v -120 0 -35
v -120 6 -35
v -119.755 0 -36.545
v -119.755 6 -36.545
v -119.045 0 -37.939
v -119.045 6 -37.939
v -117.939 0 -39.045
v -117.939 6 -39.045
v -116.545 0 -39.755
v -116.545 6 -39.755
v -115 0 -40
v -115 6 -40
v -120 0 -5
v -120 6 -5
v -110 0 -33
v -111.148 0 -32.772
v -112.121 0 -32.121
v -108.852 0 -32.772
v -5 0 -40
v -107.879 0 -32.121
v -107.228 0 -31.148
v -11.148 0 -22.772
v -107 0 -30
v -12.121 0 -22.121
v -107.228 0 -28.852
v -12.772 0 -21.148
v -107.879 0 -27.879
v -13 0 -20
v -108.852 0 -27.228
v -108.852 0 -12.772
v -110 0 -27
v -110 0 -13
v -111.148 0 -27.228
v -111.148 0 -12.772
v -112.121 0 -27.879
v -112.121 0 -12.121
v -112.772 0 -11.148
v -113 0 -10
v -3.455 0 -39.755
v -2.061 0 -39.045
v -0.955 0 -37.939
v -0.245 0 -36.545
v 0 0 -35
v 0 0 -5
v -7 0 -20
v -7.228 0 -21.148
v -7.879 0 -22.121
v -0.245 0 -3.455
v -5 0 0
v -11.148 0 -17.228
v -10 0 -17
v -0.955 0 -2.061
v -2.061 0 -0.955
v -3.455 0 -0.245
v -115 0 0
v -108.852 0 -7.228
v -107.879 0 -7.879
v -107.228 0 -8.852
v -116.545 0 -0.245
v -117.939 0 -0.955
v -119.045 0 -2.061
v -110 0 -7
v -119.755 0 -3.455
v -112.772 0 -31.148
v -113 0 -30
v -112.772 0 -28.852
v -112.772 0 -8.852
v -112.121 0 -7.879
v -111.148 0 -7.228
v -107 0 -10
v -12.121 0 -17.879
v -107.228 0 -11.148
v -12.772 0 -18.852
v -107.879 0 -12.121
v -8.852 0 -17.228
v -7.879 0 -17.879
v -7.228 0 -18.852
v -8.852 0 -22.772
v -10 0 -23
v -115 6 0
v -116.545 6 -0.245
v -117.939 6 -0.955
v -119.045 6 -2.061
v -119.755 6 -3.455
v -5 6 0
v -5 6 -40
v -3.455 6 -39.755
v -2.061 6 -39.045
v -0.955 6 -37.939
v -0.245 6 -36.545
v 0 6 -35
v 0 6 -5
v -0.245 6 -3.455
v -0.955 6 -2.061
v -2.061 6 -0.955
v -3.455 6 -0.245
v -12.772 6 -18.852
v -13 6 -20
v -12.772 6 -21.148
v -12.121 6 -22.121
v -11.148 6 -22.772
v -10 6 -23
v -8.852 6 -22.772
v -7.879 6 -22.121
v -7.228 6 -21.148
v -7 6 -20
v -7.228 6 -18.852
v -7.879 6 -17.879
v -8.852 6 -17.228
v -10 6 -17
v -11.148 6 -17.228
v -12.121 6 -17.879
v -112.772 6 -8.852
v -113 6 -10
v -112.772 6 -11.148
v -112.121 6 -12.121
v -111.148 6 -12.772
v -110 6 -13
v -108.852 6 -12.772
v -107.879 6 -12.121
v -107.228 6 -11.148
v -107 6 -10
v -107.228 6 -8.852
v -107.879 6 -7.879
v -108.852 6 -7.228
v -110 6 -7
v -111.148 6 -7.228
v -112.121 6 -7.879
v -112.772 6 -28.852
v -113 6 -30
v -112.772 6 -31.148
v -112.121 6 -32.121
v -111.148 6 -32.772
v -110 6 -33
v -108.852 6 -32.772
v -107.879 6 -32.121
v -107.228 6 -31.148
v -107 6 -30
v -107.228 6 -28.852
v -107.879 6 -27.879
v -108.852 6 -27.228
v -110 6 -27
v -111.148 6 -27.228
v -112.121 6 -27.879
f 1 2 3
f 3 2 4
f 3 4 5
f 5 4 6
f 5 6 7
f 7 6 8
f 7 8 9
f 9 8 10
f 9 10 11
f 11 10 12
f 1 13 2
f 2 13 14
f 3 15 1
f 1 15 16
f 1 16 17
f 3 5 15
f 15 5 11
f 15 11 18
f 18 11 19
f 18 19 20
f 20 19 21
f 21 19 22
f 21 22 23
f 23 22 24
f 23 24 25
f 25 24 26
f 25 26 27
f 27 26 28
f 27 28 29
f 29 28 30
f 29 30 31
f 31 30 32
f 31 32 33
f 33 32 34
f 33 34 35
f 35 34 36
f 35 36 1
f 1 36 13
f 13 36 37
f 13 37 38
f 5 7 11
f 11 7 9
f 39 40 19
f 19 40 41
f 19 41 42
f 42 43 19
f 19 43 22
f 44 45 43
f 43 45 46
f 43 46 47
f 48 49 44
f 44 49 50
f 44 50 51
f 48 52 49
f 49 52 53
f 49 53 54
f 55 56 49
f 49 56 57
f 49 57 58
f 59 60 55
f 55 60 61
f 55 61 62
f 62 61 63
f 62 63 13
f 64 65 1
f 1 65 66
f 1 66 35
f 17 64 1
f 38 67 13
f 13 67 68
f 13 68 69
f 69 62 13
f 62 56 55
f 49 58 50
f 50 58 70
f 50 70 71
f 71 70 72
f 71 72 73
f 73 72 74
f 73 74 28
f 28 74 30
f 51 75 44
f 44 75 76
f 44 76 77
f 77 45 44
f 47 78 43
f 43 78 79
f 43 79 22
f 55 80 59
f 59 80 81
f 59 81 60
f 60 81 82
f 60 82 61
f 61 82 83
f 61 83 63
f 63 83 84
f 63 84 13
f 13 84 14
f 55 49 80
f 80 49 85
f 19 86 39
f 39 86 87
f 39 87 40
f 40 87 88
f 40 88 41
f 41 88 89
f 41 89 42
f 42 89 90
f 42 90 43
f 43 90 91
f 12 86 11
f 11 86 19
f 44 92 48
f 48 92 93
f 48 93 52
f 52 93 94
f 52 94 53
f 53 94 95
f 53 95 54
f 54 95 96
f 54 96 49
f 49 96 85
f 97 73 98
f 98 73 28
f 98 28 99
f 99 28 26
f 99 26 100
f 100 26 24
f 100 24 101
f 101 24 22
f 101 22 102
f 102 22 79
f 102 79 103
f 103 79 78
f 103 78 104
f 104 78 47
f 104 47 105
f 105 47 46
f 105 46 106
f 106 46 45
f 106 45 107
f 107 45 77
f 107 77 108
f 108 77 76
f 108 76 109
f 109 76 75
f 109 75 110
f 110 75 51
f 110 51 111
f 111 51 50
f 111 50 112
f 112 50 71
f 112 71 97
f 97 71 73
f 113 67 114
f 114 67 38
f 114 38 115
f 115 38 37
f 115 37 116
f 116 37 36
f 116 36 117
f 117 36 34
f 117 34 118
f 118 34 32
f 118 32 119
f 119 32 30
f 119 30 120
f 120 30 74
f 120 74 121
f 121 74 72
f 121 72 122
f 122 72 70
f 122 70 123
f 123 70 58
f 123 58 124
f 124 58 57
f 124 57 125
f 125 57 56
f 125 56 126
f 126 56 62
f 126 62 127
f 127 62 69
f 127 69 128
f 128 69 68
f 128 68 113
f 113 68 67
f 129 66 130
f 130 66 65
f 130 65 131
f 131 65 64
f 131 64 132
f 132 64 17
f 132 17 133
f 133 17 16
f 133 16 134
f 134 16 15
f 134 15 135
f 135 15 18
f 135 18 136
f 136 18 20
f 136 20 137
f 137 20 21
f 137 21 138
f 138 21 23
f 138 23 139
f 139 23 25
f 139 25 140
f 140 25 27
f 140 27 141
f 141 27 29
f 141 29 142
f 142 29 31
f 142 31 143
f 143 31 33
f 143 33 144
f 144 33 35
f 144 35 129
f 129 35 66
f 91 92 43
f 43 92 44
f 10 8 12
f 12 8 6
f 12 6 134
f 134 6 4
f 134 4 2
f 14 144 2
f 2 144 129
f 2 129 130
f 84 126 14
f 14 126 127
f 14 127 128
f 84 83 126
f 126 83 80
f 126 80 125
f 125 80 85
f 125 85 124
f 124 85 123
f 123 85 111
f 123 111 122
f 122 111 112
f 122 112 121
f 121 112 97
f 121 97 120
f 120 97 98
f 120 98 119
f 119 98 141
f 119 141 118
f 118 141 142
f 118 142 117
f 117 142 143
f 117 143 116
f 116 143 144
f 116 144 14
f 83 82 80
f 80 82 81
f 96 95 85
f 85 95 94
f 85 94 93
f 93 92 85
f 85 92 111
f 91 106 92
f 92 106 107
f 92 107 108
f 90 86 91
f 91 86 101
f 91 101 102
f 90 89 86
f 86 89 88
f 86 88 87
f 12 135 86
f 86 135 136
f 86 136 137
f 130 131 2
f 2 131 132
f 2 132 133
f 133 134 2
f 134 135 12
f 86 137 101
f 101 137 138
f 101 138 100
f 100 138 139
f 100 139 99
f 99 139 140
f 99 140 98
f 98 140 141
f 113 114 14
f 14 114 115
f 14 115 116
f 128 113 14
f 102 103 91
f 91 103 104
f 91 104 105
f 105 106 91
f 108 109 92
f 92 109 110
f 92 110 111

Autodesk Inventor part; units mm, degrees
ref_plane "YZ Plane" through (0, 0, 0) normal (1, 0, 0) x (0, 1, 0)
ref_plane "XZ Plane" through (0, 0, 0) normal (0, 1, 0) x (-1, 0, 0)
ref_plane "XY Plane" through (0, 0, 0) normal (0, 0, 1) x (1, 0, 0)
sketch "Sketch1" plane through (0, 0, 0) normal (0, 1, 0) x (-1, 0, 0)
  line L0 (0, 0) -> (120, 0)
  line L1 (120, 0) -> (120, -40)
  line L2 (120, -40) -> (0, -40)
  line L3 (0, -40) -> (0, 0)
  circle A0 centre (10, -20) radius 3
  circle A1 centre (110, -10) radius 3
  circle A2 centre (110, -30) radius 3
  dimension "d0" = 120
  dimension "d1" = 40
  dimension "d2" = 6
  dimension "d3" = 10
  dimension "d4" = 20
  dimension "d5" = 6
  dimension "d6" = 10
  dimension "d7" = 6
  dimension "d8" = 20
  dimension "d9" = 10
  dimension "d10" = 10
extrude "Extrusion1" add sketch "Sketch1" along normal blind 6
fillet "Fillet1" radius 5 4 edges at (0, 3, 0) (0, 3, -40) (-120, 3, 0) (-120, 3, -40)
properties part number "EboxTslotMount"
